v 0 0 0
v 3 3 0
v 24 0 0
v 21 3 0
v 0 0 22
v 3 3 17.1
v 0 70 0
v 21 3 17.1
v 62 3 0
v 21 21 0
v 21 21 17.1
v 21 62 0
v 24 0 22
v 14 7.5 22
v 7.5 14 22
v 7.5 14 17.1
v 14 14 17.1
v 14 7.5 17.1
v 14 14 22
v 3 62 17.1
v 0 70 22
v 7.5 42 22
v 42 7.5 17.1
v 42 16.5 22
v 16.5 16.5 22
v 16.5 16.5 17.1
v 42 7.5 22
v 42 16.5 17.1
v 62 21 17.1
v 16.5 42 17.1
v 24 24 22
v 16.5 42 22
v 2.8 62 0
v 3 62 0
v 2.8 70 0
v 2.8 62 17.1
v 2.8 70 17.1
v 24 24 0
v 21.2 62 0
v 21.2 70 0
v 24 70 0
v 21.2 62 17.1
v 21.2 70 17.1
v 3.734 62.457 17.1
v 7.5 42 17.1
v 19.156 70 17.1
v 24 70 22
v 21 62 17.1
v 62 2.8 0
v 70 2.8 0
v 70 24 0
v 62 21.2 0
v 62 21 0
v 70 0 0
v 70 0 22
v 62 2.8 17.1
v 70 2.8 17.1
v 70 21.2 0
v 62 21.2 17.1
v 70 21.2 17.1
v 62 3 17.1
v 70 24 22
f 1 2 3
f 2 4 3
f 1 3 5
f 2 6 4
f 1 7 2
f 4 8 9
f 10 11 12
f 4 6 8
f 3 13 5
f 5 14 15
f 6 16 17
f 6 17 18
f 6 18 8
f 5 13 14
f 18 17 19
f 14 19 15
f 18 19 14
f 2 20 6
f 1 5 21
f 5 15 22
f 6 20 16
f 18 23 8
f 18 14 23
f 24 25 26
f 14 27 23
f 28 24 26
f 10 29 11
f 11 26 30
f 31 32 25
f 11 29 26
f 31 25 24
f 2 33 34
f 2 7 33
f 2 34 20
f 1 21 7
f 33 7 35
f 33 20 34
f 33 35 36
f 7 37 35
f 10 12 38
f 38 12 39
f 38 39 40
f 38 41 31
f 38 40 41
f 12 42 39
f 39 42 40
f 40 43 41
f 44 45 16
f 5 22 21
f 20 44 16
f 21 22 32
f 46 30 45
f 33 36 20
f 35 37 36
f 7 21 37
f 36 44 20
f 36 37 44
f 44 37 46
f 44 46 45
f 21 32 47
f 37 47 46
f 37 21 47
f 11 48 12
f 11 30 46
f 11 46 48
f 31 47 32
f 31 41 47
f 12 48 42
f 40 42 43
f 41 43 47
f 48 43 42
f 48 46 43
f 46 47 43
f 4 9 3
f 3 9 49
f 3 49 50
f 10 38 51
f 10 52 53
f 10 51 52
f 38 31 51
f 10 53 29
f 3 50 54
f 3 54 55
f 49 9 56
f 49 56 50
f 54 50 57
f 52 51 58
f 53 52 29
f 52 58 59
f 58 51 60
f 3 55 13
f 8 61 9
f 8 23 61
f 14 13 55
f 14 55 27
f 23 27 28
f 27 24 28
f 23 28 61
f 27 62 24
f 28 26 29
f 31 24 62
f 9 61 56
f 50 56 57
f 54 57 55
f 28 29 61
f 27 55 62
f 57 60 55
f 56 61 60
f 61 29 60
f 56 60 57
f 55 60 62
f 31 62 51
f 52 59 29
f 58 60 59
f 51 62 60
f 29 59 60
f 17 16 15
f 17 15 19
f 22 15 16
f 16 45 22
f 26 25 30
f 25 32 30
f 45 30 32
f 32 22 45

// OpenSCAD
// Kulaksız gövde — 70×22, et 3 mm, U kanal 18 mm.

clamp = 18;
entry = 18.4;
wall = 3;
arm = 70;
h = 22;
top = 5;
drop = h - top;
mouth = 8;
ch = wall + clamp + wall;

difference() {
  union() {
    cube([arm, ch, h]);
    cube([ch, arm, h]);
  }
  translate([wall, wall, -0.1]) cube([arm - wall + 1, clamp, drop + 0.2]);
  translate([wall, wall, -0.1]) cube([clamp, arm - wall + 1, drop + 0.2]);
  flare = (entry - clamp) / 2;
  translate([arm - mouth, wall - flare, -0.1]) cube([mouth + 1, entry, drop + 0.2]);
  translate([wall - flare, arm - mouth, -0.1]) cube([entry, mouth + 1, drop + 0.2]);
  win = 9;
  translate([14, wall + (clamp - win) / 2, drop - 1]) cube([28, win, top + 2]);
  translate([wall + (clamp - win) / 2, 14, drop - 1]) cube([win, 28, top + 2]);
}
